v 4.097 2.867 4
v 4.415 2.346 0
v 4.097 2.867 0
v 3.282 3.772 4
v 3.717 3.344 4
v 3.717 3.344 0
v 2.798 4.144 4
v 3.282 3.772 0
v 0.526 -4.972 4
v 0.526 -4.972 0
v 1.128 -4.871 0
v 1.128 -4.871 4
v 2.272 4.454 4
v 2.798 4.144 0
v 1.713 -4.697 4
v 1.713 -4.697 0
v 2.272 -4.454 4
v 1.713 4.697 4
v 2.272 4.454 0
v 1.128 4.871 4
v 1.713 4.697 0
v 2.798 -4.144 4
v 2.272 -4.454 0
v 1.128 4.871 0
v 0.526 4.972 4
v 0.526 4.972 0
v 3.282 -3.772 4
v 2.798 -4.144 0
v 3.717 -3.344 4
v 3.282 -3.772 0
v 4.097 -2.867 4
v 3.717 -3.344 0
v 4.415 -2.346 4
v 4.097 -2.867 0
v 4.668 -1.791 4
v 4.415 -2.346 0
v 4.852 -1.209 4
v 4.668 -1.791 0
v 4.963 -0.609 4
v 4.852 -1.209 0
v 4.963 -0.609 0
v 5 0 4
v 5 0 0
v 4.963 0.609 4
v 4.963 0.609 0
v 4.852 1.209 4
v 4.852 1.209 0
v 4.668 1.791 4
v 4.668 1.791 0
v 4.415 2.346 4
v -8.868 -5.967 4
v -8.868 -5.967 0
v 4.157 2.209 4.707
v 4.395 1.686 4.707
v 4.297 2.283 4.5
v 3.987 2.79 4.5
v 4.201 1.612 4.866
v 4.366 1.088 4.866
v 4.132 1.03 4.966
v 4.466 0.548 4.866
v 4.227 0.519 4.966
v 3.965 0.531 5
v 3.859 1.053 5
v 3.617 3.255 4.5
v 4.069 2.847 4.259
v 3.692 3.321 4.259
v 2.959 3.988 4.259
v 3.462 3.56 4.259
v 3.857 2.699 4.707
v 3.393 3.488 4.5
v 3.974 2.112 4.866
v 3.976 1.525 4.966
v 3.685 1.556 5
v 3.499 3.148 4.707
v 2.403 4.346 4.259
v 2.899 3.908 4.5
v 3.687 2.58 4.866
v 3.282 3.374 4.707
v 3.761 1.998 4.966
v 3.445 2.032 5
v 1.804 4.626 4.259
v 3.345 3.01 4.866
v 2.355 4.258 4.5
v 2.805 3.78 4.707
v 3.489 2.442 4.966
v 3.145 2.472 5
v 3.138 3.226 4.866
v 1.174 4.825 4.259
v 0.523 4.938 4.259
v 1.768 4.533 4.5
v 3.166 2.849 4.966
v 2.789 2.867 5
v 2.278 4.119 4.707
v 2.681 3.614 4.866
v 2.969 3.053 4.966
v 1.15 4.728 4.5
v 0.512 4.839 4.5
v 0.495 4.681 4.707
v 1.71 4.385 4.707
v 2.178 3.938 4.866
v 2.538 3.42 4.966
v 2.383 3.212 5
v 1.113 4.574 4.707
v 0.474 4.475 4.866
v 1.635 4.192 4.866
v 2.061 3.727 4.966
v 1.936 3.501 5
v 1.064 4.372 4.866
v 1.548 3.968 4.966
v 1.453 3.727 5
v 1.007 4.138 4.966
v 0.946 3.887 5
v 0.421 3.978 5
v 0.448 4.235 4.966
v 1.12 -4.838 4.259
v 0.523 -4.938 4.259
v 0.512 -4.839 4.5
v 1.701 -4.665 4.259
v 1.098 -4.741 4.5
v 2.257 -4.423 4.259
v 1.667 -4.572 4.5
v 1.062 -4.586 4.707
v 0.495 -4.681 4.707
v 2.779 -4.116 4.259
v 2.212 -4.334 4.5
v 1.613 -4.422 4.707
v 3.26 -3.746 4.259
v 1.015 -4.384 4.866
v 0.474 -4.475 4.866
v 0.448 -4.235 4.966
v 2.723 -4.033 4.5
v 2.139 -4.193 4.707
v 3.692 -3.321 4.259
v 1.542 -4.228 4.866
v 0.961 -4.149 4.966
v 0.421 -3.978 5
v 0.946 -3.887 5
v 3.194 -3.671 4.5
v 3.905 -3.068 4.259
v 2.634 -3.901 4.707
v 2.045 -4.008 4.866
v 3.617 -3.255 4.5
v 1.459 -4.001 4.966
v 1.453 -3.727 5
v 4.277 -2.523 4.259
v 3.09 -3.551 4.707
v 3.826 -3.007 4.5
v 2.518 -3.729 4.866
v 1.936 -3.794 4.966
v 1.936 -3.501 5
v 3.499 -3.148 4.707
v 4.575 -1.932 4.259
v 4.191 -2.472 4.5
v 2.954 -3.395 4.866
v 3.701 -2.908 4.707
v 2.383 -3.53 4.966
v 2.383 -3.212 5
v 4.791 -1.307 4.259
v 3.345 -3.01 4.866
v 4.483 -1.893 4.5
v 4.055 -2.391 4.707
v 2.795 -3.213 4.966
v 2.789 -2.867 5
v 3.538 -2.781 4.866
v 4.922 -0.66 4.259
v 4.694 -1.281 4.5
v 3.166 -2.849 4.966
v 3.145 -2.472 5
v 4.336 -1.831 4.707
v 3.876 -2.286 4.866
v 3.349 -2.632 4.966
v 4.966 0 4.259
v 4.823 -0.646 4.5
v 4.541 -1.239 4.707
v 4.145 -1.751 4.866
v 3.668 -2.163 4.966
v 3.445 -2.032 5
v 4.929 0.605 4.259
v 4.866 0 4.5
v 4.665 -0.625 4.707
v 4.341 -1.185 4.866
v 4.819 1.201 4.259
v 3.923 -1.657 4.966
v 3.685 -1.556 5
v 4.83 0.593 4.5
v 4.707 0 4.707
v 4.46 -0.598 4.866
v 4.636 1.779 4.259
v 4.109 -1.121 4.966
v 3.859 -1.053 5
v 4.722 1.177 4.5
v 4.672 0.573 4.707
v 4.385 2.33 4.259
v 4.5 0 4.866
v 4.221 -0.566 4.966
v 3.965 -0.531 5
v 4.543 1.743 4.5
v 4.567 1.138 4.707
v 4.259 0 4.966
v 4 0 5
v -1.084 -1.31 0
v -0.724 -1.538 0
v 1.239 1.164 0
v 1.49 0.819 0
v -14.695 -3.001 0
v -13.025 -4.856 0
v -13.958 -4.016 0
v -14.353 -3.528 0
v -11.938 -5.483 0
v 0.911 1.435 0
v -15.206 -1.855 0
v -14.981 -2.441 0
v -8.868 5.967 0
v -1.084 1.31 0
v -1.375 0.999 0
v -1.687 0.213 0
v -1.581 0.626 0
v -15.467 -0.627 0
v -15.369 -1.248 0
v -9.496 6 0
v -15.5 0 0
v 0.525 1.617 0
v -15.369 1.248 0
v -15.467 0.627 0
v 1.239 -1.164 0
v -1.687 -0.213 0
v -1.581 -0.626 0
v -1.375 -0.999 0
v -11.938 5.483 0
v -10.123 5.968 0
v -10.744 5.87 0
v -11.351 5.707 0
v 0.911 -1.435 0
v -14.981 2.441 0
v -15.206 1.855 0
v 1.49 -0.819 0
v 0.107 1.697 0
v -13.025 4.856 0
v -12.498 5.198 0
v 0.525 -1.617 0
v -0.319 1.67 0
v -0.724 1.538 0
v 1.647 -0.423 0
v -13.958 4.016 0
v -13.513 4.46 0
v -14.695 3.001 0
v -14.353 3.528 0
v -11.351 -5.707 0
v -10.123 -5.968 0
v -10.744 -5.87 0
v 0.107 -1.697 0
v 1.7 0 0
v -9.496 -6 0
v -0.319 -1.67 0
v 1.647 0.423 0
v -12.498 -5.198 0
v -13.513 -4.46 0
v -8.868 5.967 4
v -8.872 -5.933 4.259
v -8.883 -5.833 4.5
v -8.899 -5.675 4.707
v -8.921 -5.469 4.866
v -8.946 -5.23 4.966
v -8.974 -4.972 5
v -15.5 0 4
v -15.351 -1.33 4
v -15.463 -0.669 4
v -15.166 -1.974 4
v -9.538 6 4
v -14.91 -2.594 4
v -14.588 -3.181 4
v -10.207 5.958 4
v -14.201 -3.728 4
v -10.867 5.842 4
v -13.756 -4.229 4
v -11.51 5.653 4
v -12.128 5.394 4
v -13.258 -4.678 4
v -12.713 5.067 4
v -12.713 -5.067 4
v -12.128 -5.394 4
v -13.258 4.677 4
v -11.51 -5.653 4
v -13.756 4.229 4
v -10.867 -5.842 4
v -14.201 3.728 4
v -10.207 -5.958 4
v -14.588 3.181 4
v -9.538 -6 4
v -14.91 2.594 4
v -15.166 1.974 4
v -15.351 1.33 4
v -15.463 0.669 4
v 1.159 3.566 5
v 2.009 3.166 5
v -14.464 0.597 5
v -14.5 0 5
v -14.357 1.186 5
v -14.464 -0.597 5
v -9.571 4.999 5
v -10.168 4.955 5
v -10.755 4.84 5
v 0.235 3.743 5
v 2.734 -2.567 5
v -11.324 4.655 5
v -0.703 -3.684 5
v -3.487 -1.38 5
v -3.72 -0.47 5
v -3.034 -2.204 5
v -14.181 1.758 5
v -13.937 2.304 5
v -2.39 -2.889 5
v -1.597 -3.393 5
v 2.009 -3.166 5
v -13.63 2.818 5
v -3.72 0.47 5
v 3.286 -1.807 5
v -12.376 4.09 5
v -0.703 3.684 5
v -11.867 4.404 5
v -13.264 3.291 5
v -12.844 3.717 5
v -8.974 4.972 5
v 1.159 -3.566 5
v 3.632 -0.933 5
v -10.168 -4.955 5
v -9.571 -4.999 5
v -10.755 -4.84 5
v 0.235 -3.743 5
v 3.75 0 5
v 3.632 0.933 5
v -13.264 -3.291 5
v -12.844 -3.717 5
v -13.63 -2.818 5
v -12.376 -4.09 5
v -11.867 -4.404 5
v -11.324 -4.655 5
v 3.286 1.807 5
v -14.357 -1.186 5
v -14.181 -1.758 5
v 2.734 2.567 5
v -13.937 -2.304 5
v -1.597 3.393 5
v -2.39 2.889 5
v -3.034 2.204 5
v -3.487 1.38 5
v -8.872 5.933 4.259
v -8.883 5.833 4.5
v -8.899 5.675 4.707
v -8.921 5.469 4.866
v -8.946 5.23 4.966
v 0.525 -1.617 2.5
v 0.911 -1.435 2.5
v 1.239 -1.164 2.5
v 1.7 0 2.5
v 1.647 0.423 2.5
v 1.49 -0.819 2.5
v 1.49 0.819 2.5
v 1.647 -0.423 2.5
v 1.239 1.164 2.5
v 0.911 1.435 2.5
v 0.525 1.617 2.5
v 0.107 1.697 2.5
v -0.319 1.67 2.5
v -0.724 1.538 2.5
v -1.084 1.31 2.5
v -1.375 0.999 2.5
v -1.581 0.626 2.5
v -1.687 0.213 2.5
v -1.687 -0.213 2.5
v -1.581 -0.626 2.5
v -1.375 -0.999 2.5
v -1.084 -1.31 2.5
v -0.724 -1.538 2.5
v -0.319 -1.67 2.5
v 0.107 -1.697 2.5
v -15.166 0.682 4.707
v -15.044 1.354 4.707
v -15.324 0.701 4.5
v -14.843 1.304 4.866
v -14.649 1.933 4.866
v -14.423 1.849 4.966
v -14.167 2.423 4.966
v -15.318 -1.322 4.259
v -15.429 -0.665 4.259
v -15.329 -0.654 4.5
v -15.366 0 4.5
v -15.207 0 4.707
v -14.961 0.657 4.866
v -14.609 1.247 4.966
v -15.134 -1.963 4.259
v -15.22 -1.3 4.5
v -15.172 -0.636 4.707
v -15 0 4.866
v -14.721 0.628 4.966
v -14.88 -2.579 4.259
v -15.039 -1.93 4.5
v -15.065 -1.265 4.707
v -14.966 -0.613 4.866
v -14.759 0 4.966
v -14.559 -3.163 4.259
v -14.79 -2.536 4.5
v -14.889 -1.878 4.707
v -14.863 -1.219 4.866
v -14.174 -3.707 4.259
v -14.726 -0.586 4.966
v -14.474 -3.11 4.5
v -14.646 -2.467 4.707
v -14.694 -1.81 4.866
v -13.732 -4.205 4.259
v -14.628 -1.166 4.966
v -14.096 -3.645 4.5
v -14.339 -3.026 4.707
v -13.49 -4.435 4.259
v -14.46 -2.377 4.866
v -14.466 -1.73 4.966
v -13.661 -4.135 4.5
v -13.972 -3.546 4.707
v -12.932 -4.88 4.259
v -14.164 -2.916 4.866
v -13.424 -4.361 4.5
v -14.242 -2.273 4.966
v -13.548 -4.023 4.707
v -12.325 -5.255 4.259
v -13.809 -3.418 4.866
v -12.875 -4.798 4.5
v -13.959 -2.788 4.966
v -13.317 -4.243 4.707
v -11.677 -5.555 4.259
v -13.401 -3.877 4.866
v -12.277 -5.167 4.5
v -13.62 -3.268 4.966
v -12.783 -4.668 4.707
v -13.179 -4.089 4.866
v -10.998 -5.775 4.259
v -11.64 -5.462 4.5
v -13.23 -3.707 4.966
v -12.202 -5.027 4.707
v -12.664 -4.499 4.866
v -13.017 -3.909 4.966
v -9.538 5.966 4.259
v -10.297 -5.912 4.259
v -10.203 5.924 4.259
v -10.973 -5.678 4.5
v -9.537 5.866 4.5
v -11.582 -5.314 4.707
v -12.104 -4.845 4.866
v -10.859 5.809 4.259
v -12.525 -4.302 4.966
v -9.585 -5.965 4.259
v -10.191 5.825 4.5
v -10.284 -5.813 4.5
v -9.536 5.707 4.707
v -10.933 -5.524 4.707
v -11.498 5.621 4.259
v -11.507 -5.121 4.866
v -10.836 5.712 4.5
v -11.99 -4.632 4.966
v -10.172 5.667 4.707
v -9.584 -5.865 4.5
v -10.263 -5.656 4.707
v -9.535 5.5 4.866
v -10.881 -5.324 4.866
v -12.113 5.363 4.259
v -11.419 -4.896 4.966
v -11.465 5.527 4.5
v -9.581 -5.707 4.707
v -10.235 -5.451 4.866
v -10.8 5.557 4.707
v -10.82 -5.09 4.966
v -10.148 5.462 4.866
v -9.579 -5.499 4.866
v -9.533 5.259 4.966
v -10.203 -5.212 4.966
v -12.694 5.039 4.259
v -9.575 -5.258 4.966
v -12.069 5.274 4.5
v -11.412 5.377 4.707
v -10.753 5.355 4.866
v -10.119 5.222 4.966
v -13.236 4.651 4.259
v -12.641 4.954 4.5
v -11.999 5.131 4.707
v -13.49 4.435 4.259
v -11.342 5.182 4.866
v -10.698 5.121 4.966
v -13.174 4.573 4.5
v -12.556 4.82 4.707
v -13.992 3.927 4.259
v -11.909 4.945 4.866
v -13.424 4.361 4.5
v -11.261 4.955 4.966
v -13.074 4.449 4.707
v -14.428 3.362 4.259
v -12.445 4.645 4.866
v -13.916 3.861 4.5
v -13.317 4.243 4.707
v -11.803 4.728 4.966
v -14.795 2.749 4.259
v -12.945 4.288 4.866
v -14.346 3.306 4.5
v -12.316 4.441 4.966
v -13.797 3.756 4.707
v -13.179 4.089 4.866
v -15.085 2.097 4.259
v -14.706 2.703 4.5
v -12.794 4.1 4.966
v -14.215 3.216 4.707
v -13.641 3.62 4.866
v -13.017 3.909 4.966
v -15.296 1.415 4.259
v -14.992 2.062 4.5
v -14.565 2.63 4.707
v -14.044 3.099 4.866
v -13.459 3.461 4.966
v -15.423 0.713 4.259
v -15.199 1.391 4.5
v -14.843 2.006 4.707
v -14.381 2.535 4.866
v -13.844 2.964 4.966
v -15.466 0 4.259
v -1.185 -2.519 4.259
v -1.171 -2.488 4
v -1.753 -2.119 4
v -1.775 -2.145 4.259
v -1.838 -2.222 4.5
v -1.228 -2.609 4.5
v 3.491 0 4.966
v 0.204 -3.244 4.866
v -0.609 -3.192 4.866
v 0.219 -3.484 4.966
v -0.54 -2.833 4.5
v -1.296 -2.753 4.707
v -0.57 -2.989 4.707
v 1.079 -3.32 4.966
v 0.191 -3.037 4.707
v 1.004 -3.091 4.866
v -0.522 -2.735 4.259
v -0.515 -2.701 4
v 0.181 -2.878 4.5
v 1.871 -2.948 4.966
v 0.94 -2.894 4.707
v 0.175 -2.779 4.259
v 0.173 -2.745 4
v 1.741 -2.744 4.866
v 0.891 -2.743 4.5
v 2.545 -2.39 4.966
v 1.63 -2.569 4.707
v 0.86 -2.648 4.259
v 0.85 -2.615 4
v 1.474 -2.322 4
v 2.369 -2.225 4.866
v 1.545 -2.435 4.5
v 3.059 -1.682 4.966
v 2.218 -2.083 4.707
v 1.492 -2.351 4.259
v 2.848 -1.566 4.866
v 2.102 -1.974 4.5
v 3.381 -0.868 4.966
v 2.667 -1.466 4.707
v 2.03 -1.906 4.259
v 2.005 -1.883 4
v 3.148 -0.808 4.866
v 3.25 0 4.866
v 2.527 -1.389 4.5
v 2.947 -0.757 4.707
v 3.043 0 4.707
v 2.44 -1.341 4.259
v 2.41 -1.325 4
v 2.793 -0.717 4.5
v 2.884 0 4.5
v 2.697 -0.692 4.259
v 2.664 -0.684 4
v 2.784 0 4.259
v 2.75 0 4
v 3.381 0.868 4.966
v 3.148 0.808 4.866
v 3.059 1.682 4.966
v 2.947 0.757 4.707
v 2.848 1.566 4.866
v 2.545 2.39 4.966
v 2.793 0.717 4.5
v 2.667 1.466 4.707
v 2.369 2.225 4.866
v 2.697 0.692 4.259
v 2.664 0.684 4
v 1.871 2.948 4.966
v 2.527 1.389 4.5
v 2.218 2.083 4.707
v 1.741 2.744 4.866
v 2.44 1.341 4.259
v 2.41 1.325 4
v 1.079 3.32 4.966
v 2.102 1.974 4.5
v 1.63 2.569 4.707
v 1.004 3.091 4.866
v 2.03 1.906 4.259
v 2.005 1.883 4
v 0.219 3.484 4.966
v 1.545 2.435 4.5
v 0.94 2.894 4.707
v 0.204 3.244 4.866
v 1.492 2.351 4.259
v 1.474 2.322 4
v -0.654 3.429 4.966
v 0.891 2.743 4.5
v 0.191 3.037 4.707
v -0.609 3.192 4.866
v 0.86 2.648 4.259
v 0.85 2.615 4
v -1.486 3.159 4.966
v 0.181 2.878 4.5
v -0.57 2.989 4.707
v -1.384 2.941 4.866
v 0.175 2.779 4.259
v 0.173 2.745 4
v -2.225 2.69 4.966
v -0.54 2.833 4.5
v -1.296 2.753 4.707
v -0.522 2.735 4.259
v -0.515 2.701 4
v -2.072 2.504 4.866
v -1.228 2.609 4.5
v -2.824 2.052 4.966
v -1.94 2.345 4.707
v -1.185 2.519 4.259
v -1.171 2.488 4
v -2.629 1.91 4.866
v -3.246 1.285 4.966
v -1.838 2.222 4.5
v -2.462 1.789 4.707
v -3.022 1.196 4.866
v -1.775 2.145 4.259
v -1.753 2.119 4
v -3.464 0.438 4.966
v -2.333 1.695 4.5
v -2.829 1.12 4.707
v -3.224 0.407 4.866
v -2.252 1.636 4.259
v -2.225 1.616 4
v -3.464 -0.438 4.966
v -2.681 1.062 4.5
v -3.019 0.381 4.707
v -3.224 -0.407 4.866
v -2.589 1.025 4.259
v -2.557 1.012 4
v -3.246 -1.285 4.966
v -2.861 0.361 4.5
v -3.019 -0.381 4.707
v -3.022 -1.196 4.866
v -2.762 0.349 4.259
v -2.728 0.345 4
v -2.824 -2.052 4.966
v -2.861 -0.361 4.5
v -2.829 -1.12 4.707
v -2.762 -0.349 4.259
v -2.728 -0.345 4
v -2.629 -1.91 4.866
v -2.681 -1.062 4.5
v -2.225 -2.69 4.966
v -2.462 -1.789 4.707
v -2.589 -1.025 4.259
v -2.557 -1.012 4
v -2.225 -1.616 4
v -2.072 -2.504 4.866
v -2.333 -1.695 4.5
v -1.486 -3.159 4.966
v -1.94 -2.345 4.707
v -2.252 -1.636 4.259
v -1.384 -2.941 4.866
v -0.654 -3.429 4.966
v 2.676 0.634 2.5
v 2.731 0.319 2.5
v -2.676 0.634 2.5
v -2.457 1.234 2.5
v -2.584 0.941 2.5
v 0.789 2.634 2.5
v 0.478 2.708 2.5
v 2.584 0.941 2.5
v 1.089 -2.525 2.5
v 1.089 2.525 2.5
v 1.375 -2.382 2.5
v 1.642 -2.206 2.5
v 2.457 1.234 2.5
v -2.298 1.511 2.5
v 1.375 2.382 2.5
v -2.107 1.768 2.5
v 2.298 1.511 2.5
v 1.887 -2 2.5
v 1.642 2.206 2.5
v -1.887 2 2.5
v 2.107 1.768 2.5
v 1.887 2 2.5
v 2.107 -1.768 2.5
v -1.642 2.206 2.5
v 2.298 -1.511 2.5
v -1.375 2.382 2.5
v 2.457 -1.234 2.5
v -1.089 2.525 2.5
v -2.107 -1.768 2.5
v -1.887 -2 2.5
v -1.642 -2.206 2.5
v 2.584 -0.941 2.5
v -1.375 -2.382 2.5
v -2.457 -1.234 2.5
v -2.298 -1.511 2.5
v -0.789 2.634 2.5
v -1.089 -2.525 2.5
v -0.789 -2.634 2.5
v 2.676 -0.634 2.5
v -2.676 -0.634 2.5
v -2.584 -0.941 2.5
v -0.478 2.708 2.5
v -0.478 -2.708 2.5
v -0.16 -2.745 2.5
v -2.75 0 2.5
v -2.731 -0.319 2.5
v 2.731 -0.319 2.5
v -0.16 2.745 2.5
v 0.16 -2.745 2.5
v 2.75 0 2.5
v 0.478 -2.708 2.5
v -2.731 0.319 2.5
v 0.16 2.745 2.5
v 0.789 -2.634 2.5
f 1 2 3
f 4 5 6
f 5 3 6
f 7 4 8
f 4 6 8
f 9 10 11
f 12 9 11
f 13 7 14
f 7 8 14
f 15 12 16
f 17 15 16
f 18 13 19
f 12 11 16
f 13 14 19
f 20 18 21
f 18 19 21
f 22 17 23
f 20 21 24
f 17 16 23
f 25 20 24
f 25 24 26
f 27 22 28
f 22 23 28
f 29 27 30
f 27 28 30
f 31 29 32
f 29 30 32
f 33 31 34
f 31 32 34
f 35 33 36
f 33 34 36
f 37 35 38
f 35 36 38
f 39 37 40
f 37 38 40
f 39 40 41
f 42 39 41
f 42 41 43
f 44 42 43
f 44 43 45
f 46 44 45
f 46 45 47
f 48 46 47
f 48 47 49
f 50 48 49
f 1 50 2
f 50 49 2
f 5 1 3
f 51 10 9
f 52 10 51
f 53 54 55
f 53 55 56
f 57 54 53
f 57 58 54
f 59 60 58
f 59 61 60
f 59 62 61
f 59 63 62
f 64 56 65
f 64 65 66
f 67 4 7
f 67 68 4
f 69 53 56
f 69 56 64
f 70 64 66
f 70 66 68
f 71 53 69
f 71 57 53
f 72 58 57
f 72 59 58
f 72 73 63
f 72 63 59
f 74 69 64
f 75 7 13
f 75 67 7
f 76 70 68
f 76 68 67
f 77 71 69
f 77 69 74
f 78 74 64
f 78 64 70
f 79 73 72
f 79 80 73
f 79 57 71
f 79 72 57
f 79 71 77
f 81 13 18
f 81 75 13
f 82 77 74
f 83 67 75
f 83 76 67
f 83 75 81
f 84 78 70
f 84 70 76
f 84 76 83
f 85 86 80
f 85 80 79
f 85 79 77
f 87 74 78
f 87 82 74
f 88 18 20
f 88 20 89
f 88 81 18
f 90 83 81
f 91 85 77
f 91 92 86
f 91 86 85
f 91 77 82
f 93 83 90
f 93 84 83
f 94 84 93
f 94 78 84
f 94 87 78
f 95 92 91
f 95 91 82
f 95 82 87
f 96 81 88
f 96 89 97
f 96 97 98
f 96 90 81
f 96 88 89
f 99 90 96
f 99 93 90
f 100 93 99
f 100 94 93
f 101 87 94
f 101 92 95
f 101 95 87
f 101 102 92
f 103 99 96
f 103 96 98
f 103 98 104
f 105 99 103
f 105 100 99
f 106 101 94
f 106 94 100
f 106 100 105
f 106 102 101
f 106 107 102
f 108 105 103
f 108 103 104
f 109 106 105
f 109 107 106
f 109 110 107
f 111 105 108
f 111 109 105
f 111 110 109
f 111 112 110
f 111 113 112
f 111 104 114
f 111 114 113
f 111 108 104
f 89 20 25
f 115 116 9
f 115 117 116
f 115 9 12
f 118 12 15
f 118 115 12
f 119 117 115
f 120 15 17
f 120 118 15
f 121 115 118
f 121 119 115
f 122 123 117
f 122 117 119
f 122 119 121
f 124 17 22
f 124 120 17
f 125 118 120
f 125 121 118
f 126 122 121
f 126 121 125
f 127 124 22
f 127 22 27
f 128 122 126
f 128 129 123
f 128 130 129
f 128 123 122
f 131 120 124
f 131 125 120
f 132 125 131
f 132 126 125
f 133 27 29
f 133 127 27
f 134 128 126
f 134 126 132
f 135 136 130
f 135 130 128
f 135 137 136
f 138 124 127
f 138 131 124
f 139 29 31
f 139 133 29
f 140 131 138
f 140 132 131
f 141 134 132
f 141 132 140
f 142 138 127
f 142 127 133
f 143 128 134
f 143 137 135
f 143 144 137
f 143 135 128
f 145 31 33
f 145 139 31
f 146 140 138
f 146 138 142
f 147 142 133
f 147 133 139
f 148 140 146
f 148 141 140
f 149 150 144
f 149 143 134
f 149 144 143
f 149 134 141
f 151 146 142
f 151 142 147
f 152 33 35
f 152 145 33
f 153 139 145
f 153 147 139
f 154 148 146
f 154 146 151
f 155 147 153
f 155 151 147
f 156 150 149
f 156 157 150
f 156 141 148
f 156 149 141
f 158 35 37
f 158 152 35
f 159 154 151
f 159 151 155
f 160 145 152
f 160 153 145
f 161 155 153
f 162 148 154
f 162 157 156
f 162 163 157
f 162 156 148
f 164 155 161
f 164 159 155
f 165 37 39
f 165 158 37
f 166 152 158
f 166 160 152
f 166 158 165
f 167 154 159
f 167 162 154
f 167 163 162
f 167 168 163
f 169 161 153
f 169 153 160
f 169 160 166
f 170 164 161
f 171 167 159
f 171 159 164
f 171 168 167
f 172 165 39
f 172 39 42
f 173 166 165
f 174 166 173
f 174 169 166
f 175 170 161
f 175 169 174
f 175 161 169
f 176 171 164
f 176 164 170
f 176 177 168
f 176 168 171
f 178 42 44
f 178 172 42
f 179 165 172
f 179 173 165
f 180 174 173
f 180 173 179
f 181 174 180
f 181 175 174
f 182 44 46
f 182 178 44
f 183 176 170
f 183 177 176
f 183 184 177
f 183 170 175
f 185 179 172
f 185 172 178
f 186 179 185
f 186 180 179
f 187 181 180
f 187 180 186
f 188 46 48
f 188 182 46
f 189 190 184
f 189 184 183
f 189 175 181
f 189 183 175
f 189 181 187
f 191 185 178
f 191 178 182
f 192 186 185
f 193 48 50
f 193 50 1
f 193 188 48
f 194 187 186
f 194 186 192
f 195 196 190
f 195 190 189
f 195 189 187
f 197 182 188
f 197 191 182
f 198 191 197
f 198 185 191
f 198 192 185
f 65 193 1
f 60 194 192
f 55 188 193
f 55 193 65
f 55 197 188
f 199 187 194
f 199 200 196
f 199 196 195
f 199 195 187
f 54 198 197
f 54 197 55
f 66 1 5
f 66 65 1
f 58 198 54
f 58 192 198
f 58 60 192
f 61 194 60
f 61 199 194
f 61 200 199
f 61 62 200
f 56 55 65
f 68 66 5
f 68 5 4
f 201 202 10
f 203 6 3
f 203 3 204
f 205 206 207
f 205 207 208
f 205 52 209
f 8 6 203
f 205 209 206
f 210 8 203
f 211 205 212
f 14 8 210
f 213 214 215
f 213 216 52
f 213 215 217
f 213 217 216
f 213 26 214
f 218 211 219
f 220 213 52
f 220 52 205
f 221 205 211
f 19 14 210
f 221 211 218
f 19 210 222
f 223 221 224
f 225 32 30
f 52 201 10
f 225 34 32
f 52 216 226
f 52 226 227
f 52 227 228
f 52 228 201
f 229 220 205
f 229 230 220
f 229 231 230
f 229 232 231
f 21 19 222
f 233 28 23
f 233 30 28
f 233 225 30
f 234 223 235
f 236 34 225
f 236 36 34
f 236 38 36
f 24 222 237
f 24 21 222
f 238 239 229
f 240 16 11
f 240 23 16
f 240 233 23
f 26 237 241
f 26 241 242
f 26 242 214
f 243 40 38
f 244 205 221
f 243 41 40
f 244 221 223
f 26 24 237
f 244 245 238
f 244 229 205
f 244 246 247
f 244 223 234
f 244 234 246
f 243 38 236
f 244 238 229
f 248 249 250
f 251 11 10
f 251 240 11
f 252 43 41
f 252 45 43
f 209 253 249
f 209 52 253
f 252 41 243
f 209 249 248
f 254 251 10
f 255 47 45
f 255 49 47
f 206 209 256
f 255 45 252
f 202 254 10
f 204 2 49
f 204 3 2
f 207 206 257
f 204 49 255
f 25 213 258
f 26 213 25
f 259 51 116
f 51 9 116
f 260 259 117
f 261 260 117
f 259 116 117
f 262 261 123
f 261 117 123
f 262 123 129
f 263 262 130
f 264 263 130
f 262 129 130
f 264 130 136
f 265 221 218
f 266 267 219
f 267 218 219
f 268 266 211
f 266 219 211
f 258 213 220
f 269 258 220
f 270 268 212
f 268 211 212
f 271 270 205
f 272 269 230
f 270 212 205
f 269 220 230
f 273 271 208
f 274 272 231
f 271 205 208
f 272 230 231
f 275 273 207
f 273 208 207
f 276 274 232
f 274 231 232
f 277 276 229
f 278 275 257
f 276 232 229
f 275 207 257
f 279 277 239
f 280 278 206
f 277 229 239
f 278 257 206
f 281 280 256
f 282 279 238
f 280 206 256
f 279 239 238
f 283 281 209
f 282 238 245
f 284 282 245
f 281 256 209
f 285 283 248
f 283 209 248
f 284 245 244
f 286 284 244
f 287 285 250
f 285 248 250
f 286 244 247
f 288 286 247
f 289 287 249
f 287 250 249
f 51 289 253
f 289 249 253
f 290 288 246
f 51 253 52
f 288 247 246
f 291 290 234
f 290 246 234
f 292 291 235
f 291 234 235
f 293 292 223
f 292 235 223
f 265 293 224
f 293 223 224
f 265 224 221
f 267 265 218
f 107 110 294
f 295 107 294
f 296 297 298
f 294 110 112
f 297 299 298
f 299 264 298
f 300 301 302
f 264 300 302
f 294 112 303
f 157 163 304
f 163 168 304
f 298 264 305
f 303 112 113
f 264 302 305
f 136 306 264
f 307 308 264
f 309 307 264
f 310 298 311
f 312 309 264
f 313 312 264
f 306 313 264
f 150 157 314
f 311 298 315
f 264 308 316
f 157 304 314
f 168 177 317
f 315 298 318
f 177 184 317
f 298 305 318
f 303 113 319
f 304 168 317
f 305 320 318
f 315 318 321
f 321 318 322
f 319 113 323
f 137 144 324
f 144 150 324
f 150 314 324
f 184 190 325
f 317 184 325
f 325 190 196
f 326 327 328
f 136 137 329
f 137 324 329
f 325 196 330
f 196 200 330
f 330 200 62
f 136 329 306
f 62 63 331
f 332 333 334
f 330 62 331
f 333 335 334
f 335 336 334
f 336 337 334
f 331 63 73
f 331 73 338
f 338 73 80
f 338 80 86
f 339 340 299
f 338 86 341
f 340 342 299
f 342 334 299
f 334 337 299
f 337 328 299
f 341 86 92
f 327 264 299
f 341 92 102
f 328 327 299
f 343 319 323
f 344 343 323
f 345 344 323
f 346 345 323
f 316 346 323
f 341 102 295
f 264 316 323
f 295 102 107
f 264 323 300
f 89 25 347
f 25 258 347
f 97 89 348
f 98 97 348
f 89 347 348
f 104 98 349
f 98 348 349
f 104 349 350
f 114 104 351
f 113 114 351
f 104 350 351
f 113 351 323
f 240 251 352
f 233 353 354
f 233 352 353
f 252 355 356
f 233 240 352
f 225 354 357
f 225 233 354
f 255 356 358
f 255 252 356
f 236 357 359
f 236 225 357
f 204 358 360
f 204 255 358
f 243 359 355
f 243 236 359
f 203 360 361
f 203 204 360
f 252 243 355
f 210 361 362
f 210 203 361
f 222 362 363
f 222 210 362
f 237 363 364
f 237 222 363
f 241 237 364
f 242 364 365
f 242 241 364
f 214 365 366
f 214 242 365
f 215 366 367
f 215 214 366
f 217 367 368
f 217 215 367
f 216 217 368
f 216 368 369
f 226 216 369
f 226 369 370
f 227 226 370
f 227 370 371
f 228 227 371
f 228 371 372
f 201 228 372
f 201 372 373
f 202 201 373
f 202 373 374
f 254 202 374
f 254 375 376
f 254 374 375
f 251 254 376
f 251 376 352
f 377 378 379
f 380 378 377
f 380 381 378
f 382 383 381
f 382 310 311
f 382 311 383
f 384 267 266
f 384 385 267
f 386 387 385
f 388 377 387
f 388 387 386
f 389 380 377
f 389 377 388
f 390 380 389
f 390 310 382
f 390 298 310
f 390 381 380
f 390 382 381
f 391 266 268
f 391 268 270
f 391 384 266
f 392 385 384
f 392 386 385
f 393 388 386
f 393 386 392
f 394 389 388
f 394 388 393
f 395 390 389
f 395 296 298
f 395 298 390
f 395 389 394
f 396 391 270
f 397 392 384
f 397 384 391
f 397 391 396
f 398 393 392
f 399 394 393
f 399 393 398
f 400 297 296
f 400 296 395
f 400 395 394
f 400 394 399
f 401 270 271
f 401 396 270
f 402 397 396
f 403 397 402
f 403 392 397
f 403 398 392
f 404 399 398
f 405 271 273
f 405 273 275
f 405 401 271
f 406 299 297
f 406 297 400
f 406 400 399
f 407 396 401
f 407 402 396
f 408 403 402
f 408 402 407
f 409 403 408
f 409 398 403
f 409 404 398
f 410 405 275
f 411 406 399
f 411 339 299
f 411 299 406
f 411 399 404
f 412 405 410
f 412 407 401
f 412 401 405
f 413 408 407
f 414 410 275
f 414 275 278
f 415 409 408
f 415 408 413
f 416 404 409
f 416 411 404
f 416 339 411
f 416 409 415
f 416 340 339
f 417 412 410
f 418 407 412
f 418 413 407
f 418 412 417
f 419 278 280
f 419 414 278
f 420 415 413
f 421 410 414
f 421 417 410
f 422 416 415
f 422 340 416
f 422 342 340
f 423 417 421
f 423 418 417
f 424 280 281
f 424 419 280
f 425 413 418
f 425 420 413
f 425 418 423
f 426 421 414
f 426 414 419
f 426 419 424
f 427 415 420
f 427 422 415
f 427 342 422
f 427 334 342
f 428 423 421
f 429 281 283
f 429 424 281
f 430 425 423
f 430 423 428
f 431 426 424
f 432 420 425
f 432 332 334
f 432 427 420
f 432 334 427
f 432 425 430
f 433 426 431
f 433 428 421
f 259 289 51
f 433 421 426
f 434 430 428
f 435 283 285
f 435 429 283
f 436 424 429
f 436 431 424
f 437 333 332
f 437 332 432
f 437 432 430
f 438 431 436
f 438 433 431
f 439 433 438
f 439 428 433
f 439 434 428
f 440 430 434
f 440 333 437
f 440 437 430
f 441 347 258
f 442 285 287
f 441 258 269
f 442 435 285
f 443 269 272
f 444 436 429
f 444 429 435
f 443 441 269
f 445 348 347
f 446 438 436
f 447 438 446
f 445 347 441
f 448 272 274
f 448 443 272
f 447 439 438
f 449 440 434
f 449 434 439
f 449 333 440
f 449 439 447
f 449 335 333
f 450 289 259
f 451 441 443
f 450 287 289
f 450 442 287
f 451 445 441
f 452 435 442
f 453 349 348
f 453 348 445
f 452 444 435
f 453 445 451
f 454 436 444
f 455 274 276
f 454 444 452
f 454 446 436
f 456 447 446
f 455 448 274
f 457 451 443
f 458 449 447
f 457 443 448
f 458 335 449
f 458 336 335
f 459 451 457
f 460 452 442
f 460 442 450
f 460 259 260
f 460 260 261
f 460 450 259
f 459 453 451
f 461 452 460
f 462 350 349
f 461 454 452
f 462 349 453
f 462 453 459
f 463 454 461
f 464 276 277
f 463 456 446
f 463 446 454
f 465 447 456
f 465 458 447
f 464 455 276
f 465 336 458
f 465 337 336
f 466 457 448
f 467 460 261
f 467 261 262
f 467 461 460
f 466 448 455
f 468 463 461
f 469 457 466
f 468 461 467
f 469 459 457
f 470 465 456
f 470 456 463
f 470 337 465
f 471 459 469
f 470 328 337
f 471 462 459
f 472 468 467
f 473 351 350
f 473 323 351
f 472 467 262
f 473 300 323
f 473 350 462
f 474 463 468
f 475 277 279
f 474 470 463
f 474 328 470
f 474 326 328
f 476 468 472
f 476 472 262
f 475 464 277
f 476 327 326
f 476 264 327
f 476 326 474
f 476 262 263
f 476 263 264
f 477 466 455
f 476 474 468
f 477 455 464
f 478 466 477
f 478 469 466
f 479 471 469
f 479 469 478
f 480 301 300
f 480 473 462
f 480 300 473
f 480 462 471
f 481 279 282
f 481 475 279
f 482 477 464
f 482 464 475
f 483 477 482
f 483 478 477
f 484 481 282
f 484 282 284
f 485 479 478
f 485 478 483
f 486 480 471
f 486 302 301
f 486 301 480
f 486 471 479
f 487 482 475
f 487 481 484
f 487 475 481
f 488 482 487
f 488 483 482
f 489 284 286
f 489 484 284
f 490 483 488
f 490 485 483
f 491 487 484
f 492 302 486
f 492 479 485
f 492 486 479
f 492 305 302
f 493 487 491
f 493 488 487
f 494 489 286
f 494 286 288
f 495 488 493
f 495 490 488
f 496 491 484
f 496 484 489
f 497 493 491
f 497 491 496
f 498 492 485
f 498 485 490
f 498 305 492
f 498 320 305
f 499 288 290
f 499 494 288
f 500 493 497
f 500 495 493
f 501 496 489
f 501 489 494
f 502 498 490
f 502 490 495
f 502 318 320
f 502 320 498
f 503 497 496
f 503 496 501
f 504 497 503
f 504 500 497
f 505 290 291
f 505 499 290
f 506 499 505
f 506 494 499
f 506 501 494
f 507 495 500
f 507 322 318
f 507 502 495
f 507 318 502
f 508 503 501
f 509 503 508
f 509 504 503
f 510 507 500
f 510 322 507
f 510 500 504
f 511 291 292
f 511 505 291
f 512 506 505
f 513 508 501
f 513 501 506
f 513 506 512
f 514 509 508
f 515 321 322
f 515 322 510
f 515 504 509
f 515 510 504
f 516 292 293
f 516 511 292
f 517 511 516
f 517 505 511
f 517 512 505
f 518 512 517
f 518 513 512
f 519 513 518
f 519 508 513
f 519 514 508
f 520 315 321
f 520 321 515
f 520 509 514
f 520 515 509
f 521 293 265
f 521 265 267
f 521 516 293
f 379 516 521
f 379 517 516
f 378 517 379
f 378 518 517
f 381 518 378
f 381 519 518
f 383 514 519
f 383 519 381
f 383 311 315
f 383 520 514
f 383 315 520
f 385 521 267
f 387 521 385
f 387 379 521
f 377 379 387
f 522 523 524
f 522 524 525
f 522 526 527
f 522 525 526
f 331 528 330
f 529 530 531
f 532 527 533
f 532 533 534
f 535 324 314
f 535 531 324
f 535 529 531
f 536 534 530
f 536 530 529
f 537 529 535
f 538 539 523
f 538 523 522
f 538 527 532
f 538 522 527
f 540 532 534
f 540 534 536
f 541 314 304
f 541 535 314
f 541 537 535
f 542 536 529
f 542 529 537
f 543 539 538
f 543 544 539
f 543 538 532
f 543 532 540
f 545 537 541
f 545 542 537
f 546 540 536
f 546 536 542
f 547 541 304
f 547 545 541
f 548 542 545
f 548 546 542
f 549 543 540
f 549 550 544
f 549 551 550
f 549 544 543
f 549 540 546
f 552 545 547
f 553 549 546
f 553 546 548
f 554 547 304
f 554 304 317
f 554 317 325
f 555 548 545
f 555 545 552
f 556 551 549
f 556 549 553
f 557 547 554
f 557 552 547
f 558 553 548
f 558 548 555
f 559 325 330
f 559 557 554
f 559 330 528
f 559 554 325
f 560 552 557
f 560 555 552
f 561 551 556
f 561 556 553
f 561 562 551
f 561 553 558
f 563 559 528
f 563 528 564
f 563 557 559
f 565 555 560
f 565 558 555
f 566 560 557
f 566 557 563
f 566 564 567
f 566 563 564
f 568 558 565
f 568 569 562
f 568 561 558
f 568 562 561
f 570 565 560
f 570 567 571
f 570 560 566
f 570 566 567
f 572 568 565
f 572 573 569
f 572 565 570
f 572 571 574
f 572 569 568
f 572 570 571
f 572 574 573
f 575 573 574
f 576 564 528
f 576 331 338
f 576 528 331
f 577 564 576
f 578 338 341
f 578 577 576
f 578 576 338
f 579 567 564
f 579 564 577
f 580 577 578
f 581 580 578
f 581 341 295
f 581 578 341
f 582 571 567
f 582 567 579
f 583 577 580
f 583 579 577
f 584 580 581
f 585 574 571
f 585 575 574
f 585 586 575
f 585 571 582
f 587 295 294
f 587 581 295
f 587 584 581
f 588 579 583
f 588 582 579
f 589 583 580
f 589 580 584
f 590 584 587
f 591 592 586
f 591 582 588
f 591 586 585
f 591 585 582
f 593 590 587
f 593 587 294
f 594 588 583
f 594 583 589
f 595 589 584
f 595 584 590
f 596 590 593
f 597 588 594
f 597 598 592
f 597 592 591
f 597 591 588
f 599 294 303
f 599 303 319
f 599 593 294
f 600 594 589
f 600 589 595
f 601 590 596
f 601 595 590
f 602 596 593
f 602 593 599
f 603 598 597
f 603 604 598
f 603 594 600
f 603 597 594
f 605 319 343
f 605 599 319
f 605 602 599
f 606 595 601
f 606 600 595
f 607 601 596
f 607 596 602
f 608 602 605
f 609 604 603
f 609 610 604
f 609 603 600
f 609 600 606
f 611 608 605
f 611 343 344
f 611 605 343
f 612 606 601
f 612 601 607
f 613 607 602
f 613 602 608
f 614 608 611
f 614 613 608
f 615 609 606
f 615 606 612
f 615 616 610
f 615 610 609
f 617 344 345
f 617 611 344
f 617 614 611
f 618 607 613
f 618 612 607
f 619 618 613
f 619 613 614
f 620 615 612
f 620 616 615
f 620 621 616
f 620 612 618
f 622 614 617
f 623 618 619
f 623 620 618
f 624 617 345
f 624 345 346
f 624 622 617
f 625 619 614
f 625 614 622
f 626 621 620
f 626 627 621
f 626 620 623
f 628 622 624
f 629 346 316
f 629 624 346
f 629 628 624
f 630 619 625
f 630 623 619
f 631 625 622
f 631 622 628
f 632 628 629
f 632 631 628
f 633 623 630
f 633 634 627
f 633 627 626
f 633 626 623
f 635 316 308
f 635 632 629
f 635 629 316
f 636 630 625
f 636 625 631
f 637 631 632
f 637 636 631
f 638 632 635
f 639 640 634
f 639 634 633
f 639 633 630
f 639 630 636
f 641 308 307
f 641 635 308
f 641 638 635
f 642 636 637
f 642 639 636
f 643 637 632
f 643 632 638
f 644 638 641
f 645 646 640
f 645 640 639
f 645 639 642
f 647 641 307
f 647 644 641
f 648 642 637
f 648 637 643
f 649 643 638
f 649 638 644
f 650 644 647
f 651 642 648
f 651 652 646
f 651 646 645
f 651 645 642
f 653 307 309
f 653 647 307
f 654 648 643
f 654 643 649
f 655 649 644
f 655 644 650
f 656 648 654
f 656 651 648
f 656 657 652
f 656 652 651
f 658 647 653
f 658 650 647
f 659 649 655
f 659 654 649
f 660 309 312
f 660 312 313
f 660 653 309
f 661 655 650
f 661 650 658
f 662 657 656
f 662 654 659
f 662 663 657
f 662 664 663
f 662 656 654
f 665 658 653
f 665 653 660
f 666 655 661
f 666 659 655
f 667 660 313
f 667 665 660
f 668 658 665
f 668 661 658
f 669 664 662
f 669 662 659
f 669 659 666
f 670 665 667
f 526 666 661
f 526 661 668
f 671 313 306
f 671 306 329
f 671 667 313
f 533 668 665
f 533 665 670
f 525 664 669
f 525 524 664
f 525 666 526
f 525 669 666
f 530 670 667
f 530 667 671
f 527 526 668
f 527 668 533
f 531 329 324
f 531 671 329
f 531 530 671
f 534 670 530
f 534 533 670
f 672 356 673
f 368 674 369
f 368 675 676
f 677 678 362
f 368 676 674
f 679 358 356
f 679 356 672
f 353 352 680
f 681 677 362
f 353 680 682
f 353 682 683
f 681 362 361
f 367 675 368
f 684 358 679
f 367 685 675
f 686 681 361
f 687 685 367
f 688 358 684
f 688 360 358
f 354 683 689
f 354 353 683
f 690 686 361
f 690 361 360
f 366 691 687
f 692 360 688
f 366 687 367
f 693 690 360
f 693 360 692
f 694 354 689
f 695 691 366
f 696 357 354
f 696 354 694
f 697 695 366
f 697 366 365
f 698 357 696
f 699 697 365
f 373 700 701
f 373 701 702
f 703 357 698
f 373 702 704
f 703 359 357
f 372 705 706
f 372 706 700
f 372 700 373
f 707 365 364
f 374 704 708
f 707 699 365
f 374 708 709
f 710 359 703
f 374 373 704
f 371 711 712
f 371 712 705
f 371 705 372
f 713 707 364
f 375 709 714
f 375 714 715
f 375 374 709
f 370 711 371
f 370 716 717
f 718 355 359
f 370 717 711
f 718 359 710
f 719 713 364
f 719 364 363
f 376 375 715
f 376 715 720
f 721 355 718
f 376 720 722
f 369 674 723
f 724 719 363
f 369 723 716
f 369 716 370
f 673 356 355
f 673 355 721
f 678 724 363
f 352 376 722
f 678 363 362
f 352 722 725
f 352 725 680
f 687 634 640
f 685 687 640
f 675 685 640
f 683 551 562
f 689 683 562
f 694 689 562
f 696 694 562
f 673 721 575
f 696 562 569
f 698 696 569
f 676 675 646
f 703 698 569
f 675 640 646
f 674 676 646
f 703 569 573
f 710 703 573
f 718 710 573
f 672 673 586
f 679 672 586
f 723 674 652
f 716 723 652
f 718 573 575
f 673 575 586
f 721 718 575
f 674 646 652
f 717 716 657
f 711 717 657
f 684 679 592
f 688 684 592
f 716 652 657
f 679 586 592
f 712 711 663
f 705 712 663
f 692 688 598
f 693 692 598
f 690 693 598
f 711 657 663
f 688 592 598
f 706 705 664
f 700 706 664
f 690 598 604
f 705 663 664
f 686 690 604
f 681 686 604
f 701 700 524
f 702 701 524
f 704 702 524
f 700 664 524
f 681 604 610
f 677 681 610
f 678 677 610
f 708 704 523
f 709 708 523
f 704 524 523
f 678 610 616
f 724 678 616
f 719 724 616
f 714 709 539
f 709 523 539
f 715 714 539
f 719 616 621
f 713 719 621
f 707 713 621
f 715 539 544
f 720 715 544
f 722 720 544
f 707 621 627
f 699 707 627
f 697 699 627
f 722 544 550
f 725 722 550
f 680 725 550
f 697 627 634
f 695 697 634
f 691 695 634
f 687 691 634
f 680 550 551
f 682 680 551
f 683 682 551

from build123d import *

# Parameters (mm, degrees)
CYLINDER_R     = 2.75
CYLINDER_DEPTH = 10
SKETCH_R       = 1.7
PAD_DEPTH      = 5
FILLET_R       = 1


with BuildPart() as cylinder:
    # Cylinder → Cylinder (new body)
    with BuildSketch(Plane.XY.offset(2.5)):
        Circle(CYLINDER_R)
    extrude(amount=CYLINDER_DEPTH)


with BuildPart() as fillet_body:
    # Sketch → Pad (new body)
    with BuildSketch(Plane.XY):
        with BuildLine():
            ThreePointArc((0.526316, -4.972222), (5, 0), (0.526316, 4.972222))
            Line((-8.868441, 5.966669), (0.526316, 4.972222))
            ThreePointArc((-8.868441, 5.966669), (-15.5, -1e-05), (-8.868421, -5.966666))
            Line((0.526316, -4.972222), (-8.868421, -5.966666))
        make_face()
        Circle(SKETCH_R, mode=Mode.SUBTRACT)
    extrude(amount=PAD_DEPTH)

    # Cut: cut Cylinder
    add(cylinder.part, mode=Mode.SUBTRACT)

    # Fillet
    fillet_edges = [fillet_body.edges().sort_by_distance(p)[0] for p in [
        (5, 0, 5),
        (-4.171053, -5.469444, 5),
        (-4.171063, 5.469445, 5),
        (-15.5, -1e-05, 5),
        (-2.75, 0, 5),
    ]]
    fillet(fillet_edges, radius=FILLET_R)


solid = fillet_body.part
